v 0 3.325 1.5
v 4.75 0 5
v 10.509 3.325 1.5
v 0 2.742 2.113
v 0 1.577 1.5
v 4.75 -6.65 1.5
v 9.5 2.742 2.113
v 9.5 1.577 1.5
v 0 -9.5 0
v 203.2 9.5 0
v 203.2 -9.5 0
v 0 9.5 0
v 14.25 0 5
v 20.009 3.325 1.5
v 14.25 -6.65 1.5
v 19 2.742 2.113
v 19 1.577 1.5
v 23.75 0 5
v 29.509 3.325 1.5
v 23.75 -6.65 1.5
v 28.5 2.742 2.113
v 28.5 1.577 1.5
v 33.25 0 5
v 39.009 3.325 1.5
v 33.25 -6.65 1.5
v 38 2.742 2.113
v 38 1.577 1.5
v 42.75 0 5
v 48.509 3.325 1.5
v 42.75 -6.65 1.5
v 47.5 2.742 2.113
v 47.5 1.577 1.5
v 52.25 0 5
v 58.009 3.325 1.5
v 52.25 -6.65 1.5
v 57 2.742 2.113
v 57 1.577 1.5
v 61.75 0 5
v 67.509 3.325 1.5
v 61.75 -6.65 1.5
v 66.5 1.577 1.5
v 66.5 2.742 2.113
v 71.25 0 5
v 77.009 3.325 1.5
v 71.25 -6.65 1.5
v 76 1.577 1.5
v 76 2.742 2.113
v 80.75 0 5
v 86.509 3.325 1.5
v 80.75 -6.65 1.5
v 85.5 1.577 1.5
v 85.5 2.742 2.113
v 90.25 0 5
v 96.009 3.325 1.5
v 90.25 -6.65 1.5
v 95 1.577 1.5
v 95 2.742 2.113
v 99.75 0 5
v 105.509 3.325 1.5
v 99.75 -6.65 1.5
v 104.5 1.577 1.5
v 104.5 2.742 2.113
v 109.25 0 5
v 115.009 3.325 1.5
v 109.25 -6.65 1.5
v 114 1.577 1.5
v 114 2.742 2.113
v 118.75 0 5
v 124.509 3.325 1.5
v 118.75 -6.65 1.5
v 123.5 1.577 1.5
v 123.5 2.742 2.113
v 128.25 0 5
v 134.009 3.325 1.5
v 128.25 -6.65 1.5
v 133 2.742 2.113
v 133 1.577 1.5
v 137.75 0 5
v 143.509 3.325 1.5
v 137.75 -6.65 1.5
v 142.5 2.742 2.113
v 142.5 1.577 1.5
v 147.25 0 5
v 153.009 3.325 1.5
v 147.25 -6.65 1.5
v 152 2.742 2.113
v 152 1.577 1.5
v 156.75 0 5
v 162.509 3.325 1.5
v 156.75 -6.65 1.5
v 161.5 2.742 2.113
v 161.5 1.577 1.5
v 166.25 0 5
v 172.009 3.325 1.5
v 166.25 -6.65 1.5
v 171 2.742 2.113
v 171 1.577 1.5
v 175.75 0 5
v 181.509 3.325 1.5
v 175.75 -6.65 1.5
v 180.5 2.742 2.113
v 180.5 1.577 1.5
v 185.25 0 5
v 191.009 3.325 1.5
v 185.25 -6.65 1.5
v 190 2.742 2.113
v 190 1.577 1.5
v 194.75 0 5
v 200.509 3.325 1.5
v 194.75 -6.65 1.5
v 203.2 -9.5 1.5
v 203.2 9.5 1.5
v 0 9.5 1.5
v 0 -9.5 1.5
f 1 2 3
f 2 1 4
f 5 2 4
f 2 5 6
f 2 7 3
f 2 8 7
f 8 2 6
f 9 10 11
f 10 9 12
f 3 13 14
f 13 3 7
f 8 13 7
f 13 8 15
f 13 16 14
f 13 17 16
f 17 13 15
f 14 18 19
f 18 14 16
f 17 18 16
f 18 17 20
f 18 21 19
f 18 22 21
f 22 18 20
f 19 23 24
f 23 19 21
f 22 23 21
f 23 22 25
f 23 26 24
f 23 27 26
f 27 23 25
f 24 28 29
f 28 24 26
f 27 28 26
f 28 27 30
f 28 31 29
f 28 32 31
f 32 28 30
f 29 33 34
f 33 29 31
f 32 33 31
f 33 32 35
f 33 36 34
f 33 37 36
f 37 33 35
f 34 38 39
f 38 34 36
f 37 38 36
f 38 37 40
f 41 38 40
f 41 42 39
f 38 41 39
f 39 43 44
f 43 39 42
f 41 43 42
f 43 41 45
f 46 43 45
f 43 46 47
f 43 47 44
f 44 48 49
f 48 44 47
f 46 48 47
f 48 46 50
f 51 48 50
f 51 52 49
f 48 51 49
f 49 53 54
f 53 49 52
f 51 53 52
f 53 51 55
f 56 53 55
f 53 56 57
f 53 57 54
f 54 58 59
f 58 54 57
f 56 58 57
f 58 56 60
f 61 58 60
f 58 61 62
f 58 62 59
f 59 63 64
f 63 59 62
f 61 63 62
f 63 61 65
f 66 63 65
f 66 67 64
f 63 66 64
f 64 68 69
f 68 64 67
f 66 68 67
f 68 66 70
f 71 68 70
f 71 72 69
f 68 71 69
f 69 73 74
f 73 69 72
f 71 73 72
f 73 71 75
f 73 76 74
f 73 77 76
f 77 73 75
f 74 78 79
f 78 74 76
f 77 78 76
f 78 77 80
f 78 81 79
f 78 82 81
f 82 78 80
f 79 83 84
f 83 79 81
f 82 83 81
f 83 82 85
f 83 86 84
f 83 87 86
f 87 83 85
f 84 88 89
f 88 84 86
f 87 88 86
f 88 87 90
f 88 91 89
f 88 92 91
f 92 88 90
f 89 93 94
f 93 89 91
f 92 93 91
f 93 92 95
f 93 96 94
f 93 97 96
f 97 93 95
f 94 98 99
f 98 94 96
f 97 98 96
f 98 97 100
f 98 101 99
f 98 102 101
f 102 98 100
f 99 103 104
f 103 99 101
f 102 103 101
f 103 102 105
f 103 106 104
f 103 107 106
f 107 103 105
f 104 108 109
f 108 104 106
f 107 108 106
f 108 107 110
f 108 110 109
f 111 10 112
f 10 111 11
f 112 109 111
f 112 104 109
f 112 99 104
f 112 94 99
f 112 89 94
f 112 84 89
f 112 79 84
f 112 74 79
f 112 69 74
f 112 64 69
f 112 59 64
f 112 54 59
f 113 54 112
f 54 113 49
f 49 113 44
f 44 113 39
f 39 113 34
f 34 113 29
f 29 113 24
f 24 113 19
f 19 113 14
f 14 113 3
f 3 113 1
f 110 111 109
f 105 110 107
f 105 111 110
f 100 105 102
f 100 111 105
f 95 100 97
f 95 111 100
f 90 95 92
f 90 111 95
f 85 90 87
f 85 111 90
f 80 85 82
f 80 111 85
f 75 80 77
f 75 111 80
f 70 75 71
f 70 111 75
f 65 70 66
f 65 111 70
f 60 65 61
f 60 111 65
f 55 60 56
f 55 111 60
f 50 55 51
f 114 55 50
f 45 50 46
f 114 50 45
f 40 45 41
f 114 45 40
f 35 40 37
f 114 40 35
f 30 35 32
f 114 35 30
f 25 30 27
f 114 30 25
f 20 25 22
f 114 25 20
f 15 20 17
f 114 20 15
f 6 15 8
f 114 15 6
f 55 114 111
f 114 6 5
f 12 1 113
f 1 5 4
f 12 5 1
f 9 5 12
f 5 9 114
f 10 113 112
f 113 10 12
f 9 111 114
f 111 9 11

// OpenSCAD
$r = 19/2;
$r2 = 11 / 2;
$d = 1.5;
$fn = 3;
$links = 20;

difference() {
    union() {
for (i = [0:$links]) {
    
     translate([i * $r+$r/2, 0, 2.5]) {
        rotate([0, 0, 30]) {
            cylinder(5, $r, 0, true);
        }
     }
}
translate([0, -$r, 0]) {
     cube([203.2, $r*2 , $d], false);
}
}
translate([-10, 0, 0]) {
    cube([20, 20, 20], true);
}
translate([($links) * $r +11.2, 0, 0]) {
    //cube([20, 20, 20], true);
}
}
